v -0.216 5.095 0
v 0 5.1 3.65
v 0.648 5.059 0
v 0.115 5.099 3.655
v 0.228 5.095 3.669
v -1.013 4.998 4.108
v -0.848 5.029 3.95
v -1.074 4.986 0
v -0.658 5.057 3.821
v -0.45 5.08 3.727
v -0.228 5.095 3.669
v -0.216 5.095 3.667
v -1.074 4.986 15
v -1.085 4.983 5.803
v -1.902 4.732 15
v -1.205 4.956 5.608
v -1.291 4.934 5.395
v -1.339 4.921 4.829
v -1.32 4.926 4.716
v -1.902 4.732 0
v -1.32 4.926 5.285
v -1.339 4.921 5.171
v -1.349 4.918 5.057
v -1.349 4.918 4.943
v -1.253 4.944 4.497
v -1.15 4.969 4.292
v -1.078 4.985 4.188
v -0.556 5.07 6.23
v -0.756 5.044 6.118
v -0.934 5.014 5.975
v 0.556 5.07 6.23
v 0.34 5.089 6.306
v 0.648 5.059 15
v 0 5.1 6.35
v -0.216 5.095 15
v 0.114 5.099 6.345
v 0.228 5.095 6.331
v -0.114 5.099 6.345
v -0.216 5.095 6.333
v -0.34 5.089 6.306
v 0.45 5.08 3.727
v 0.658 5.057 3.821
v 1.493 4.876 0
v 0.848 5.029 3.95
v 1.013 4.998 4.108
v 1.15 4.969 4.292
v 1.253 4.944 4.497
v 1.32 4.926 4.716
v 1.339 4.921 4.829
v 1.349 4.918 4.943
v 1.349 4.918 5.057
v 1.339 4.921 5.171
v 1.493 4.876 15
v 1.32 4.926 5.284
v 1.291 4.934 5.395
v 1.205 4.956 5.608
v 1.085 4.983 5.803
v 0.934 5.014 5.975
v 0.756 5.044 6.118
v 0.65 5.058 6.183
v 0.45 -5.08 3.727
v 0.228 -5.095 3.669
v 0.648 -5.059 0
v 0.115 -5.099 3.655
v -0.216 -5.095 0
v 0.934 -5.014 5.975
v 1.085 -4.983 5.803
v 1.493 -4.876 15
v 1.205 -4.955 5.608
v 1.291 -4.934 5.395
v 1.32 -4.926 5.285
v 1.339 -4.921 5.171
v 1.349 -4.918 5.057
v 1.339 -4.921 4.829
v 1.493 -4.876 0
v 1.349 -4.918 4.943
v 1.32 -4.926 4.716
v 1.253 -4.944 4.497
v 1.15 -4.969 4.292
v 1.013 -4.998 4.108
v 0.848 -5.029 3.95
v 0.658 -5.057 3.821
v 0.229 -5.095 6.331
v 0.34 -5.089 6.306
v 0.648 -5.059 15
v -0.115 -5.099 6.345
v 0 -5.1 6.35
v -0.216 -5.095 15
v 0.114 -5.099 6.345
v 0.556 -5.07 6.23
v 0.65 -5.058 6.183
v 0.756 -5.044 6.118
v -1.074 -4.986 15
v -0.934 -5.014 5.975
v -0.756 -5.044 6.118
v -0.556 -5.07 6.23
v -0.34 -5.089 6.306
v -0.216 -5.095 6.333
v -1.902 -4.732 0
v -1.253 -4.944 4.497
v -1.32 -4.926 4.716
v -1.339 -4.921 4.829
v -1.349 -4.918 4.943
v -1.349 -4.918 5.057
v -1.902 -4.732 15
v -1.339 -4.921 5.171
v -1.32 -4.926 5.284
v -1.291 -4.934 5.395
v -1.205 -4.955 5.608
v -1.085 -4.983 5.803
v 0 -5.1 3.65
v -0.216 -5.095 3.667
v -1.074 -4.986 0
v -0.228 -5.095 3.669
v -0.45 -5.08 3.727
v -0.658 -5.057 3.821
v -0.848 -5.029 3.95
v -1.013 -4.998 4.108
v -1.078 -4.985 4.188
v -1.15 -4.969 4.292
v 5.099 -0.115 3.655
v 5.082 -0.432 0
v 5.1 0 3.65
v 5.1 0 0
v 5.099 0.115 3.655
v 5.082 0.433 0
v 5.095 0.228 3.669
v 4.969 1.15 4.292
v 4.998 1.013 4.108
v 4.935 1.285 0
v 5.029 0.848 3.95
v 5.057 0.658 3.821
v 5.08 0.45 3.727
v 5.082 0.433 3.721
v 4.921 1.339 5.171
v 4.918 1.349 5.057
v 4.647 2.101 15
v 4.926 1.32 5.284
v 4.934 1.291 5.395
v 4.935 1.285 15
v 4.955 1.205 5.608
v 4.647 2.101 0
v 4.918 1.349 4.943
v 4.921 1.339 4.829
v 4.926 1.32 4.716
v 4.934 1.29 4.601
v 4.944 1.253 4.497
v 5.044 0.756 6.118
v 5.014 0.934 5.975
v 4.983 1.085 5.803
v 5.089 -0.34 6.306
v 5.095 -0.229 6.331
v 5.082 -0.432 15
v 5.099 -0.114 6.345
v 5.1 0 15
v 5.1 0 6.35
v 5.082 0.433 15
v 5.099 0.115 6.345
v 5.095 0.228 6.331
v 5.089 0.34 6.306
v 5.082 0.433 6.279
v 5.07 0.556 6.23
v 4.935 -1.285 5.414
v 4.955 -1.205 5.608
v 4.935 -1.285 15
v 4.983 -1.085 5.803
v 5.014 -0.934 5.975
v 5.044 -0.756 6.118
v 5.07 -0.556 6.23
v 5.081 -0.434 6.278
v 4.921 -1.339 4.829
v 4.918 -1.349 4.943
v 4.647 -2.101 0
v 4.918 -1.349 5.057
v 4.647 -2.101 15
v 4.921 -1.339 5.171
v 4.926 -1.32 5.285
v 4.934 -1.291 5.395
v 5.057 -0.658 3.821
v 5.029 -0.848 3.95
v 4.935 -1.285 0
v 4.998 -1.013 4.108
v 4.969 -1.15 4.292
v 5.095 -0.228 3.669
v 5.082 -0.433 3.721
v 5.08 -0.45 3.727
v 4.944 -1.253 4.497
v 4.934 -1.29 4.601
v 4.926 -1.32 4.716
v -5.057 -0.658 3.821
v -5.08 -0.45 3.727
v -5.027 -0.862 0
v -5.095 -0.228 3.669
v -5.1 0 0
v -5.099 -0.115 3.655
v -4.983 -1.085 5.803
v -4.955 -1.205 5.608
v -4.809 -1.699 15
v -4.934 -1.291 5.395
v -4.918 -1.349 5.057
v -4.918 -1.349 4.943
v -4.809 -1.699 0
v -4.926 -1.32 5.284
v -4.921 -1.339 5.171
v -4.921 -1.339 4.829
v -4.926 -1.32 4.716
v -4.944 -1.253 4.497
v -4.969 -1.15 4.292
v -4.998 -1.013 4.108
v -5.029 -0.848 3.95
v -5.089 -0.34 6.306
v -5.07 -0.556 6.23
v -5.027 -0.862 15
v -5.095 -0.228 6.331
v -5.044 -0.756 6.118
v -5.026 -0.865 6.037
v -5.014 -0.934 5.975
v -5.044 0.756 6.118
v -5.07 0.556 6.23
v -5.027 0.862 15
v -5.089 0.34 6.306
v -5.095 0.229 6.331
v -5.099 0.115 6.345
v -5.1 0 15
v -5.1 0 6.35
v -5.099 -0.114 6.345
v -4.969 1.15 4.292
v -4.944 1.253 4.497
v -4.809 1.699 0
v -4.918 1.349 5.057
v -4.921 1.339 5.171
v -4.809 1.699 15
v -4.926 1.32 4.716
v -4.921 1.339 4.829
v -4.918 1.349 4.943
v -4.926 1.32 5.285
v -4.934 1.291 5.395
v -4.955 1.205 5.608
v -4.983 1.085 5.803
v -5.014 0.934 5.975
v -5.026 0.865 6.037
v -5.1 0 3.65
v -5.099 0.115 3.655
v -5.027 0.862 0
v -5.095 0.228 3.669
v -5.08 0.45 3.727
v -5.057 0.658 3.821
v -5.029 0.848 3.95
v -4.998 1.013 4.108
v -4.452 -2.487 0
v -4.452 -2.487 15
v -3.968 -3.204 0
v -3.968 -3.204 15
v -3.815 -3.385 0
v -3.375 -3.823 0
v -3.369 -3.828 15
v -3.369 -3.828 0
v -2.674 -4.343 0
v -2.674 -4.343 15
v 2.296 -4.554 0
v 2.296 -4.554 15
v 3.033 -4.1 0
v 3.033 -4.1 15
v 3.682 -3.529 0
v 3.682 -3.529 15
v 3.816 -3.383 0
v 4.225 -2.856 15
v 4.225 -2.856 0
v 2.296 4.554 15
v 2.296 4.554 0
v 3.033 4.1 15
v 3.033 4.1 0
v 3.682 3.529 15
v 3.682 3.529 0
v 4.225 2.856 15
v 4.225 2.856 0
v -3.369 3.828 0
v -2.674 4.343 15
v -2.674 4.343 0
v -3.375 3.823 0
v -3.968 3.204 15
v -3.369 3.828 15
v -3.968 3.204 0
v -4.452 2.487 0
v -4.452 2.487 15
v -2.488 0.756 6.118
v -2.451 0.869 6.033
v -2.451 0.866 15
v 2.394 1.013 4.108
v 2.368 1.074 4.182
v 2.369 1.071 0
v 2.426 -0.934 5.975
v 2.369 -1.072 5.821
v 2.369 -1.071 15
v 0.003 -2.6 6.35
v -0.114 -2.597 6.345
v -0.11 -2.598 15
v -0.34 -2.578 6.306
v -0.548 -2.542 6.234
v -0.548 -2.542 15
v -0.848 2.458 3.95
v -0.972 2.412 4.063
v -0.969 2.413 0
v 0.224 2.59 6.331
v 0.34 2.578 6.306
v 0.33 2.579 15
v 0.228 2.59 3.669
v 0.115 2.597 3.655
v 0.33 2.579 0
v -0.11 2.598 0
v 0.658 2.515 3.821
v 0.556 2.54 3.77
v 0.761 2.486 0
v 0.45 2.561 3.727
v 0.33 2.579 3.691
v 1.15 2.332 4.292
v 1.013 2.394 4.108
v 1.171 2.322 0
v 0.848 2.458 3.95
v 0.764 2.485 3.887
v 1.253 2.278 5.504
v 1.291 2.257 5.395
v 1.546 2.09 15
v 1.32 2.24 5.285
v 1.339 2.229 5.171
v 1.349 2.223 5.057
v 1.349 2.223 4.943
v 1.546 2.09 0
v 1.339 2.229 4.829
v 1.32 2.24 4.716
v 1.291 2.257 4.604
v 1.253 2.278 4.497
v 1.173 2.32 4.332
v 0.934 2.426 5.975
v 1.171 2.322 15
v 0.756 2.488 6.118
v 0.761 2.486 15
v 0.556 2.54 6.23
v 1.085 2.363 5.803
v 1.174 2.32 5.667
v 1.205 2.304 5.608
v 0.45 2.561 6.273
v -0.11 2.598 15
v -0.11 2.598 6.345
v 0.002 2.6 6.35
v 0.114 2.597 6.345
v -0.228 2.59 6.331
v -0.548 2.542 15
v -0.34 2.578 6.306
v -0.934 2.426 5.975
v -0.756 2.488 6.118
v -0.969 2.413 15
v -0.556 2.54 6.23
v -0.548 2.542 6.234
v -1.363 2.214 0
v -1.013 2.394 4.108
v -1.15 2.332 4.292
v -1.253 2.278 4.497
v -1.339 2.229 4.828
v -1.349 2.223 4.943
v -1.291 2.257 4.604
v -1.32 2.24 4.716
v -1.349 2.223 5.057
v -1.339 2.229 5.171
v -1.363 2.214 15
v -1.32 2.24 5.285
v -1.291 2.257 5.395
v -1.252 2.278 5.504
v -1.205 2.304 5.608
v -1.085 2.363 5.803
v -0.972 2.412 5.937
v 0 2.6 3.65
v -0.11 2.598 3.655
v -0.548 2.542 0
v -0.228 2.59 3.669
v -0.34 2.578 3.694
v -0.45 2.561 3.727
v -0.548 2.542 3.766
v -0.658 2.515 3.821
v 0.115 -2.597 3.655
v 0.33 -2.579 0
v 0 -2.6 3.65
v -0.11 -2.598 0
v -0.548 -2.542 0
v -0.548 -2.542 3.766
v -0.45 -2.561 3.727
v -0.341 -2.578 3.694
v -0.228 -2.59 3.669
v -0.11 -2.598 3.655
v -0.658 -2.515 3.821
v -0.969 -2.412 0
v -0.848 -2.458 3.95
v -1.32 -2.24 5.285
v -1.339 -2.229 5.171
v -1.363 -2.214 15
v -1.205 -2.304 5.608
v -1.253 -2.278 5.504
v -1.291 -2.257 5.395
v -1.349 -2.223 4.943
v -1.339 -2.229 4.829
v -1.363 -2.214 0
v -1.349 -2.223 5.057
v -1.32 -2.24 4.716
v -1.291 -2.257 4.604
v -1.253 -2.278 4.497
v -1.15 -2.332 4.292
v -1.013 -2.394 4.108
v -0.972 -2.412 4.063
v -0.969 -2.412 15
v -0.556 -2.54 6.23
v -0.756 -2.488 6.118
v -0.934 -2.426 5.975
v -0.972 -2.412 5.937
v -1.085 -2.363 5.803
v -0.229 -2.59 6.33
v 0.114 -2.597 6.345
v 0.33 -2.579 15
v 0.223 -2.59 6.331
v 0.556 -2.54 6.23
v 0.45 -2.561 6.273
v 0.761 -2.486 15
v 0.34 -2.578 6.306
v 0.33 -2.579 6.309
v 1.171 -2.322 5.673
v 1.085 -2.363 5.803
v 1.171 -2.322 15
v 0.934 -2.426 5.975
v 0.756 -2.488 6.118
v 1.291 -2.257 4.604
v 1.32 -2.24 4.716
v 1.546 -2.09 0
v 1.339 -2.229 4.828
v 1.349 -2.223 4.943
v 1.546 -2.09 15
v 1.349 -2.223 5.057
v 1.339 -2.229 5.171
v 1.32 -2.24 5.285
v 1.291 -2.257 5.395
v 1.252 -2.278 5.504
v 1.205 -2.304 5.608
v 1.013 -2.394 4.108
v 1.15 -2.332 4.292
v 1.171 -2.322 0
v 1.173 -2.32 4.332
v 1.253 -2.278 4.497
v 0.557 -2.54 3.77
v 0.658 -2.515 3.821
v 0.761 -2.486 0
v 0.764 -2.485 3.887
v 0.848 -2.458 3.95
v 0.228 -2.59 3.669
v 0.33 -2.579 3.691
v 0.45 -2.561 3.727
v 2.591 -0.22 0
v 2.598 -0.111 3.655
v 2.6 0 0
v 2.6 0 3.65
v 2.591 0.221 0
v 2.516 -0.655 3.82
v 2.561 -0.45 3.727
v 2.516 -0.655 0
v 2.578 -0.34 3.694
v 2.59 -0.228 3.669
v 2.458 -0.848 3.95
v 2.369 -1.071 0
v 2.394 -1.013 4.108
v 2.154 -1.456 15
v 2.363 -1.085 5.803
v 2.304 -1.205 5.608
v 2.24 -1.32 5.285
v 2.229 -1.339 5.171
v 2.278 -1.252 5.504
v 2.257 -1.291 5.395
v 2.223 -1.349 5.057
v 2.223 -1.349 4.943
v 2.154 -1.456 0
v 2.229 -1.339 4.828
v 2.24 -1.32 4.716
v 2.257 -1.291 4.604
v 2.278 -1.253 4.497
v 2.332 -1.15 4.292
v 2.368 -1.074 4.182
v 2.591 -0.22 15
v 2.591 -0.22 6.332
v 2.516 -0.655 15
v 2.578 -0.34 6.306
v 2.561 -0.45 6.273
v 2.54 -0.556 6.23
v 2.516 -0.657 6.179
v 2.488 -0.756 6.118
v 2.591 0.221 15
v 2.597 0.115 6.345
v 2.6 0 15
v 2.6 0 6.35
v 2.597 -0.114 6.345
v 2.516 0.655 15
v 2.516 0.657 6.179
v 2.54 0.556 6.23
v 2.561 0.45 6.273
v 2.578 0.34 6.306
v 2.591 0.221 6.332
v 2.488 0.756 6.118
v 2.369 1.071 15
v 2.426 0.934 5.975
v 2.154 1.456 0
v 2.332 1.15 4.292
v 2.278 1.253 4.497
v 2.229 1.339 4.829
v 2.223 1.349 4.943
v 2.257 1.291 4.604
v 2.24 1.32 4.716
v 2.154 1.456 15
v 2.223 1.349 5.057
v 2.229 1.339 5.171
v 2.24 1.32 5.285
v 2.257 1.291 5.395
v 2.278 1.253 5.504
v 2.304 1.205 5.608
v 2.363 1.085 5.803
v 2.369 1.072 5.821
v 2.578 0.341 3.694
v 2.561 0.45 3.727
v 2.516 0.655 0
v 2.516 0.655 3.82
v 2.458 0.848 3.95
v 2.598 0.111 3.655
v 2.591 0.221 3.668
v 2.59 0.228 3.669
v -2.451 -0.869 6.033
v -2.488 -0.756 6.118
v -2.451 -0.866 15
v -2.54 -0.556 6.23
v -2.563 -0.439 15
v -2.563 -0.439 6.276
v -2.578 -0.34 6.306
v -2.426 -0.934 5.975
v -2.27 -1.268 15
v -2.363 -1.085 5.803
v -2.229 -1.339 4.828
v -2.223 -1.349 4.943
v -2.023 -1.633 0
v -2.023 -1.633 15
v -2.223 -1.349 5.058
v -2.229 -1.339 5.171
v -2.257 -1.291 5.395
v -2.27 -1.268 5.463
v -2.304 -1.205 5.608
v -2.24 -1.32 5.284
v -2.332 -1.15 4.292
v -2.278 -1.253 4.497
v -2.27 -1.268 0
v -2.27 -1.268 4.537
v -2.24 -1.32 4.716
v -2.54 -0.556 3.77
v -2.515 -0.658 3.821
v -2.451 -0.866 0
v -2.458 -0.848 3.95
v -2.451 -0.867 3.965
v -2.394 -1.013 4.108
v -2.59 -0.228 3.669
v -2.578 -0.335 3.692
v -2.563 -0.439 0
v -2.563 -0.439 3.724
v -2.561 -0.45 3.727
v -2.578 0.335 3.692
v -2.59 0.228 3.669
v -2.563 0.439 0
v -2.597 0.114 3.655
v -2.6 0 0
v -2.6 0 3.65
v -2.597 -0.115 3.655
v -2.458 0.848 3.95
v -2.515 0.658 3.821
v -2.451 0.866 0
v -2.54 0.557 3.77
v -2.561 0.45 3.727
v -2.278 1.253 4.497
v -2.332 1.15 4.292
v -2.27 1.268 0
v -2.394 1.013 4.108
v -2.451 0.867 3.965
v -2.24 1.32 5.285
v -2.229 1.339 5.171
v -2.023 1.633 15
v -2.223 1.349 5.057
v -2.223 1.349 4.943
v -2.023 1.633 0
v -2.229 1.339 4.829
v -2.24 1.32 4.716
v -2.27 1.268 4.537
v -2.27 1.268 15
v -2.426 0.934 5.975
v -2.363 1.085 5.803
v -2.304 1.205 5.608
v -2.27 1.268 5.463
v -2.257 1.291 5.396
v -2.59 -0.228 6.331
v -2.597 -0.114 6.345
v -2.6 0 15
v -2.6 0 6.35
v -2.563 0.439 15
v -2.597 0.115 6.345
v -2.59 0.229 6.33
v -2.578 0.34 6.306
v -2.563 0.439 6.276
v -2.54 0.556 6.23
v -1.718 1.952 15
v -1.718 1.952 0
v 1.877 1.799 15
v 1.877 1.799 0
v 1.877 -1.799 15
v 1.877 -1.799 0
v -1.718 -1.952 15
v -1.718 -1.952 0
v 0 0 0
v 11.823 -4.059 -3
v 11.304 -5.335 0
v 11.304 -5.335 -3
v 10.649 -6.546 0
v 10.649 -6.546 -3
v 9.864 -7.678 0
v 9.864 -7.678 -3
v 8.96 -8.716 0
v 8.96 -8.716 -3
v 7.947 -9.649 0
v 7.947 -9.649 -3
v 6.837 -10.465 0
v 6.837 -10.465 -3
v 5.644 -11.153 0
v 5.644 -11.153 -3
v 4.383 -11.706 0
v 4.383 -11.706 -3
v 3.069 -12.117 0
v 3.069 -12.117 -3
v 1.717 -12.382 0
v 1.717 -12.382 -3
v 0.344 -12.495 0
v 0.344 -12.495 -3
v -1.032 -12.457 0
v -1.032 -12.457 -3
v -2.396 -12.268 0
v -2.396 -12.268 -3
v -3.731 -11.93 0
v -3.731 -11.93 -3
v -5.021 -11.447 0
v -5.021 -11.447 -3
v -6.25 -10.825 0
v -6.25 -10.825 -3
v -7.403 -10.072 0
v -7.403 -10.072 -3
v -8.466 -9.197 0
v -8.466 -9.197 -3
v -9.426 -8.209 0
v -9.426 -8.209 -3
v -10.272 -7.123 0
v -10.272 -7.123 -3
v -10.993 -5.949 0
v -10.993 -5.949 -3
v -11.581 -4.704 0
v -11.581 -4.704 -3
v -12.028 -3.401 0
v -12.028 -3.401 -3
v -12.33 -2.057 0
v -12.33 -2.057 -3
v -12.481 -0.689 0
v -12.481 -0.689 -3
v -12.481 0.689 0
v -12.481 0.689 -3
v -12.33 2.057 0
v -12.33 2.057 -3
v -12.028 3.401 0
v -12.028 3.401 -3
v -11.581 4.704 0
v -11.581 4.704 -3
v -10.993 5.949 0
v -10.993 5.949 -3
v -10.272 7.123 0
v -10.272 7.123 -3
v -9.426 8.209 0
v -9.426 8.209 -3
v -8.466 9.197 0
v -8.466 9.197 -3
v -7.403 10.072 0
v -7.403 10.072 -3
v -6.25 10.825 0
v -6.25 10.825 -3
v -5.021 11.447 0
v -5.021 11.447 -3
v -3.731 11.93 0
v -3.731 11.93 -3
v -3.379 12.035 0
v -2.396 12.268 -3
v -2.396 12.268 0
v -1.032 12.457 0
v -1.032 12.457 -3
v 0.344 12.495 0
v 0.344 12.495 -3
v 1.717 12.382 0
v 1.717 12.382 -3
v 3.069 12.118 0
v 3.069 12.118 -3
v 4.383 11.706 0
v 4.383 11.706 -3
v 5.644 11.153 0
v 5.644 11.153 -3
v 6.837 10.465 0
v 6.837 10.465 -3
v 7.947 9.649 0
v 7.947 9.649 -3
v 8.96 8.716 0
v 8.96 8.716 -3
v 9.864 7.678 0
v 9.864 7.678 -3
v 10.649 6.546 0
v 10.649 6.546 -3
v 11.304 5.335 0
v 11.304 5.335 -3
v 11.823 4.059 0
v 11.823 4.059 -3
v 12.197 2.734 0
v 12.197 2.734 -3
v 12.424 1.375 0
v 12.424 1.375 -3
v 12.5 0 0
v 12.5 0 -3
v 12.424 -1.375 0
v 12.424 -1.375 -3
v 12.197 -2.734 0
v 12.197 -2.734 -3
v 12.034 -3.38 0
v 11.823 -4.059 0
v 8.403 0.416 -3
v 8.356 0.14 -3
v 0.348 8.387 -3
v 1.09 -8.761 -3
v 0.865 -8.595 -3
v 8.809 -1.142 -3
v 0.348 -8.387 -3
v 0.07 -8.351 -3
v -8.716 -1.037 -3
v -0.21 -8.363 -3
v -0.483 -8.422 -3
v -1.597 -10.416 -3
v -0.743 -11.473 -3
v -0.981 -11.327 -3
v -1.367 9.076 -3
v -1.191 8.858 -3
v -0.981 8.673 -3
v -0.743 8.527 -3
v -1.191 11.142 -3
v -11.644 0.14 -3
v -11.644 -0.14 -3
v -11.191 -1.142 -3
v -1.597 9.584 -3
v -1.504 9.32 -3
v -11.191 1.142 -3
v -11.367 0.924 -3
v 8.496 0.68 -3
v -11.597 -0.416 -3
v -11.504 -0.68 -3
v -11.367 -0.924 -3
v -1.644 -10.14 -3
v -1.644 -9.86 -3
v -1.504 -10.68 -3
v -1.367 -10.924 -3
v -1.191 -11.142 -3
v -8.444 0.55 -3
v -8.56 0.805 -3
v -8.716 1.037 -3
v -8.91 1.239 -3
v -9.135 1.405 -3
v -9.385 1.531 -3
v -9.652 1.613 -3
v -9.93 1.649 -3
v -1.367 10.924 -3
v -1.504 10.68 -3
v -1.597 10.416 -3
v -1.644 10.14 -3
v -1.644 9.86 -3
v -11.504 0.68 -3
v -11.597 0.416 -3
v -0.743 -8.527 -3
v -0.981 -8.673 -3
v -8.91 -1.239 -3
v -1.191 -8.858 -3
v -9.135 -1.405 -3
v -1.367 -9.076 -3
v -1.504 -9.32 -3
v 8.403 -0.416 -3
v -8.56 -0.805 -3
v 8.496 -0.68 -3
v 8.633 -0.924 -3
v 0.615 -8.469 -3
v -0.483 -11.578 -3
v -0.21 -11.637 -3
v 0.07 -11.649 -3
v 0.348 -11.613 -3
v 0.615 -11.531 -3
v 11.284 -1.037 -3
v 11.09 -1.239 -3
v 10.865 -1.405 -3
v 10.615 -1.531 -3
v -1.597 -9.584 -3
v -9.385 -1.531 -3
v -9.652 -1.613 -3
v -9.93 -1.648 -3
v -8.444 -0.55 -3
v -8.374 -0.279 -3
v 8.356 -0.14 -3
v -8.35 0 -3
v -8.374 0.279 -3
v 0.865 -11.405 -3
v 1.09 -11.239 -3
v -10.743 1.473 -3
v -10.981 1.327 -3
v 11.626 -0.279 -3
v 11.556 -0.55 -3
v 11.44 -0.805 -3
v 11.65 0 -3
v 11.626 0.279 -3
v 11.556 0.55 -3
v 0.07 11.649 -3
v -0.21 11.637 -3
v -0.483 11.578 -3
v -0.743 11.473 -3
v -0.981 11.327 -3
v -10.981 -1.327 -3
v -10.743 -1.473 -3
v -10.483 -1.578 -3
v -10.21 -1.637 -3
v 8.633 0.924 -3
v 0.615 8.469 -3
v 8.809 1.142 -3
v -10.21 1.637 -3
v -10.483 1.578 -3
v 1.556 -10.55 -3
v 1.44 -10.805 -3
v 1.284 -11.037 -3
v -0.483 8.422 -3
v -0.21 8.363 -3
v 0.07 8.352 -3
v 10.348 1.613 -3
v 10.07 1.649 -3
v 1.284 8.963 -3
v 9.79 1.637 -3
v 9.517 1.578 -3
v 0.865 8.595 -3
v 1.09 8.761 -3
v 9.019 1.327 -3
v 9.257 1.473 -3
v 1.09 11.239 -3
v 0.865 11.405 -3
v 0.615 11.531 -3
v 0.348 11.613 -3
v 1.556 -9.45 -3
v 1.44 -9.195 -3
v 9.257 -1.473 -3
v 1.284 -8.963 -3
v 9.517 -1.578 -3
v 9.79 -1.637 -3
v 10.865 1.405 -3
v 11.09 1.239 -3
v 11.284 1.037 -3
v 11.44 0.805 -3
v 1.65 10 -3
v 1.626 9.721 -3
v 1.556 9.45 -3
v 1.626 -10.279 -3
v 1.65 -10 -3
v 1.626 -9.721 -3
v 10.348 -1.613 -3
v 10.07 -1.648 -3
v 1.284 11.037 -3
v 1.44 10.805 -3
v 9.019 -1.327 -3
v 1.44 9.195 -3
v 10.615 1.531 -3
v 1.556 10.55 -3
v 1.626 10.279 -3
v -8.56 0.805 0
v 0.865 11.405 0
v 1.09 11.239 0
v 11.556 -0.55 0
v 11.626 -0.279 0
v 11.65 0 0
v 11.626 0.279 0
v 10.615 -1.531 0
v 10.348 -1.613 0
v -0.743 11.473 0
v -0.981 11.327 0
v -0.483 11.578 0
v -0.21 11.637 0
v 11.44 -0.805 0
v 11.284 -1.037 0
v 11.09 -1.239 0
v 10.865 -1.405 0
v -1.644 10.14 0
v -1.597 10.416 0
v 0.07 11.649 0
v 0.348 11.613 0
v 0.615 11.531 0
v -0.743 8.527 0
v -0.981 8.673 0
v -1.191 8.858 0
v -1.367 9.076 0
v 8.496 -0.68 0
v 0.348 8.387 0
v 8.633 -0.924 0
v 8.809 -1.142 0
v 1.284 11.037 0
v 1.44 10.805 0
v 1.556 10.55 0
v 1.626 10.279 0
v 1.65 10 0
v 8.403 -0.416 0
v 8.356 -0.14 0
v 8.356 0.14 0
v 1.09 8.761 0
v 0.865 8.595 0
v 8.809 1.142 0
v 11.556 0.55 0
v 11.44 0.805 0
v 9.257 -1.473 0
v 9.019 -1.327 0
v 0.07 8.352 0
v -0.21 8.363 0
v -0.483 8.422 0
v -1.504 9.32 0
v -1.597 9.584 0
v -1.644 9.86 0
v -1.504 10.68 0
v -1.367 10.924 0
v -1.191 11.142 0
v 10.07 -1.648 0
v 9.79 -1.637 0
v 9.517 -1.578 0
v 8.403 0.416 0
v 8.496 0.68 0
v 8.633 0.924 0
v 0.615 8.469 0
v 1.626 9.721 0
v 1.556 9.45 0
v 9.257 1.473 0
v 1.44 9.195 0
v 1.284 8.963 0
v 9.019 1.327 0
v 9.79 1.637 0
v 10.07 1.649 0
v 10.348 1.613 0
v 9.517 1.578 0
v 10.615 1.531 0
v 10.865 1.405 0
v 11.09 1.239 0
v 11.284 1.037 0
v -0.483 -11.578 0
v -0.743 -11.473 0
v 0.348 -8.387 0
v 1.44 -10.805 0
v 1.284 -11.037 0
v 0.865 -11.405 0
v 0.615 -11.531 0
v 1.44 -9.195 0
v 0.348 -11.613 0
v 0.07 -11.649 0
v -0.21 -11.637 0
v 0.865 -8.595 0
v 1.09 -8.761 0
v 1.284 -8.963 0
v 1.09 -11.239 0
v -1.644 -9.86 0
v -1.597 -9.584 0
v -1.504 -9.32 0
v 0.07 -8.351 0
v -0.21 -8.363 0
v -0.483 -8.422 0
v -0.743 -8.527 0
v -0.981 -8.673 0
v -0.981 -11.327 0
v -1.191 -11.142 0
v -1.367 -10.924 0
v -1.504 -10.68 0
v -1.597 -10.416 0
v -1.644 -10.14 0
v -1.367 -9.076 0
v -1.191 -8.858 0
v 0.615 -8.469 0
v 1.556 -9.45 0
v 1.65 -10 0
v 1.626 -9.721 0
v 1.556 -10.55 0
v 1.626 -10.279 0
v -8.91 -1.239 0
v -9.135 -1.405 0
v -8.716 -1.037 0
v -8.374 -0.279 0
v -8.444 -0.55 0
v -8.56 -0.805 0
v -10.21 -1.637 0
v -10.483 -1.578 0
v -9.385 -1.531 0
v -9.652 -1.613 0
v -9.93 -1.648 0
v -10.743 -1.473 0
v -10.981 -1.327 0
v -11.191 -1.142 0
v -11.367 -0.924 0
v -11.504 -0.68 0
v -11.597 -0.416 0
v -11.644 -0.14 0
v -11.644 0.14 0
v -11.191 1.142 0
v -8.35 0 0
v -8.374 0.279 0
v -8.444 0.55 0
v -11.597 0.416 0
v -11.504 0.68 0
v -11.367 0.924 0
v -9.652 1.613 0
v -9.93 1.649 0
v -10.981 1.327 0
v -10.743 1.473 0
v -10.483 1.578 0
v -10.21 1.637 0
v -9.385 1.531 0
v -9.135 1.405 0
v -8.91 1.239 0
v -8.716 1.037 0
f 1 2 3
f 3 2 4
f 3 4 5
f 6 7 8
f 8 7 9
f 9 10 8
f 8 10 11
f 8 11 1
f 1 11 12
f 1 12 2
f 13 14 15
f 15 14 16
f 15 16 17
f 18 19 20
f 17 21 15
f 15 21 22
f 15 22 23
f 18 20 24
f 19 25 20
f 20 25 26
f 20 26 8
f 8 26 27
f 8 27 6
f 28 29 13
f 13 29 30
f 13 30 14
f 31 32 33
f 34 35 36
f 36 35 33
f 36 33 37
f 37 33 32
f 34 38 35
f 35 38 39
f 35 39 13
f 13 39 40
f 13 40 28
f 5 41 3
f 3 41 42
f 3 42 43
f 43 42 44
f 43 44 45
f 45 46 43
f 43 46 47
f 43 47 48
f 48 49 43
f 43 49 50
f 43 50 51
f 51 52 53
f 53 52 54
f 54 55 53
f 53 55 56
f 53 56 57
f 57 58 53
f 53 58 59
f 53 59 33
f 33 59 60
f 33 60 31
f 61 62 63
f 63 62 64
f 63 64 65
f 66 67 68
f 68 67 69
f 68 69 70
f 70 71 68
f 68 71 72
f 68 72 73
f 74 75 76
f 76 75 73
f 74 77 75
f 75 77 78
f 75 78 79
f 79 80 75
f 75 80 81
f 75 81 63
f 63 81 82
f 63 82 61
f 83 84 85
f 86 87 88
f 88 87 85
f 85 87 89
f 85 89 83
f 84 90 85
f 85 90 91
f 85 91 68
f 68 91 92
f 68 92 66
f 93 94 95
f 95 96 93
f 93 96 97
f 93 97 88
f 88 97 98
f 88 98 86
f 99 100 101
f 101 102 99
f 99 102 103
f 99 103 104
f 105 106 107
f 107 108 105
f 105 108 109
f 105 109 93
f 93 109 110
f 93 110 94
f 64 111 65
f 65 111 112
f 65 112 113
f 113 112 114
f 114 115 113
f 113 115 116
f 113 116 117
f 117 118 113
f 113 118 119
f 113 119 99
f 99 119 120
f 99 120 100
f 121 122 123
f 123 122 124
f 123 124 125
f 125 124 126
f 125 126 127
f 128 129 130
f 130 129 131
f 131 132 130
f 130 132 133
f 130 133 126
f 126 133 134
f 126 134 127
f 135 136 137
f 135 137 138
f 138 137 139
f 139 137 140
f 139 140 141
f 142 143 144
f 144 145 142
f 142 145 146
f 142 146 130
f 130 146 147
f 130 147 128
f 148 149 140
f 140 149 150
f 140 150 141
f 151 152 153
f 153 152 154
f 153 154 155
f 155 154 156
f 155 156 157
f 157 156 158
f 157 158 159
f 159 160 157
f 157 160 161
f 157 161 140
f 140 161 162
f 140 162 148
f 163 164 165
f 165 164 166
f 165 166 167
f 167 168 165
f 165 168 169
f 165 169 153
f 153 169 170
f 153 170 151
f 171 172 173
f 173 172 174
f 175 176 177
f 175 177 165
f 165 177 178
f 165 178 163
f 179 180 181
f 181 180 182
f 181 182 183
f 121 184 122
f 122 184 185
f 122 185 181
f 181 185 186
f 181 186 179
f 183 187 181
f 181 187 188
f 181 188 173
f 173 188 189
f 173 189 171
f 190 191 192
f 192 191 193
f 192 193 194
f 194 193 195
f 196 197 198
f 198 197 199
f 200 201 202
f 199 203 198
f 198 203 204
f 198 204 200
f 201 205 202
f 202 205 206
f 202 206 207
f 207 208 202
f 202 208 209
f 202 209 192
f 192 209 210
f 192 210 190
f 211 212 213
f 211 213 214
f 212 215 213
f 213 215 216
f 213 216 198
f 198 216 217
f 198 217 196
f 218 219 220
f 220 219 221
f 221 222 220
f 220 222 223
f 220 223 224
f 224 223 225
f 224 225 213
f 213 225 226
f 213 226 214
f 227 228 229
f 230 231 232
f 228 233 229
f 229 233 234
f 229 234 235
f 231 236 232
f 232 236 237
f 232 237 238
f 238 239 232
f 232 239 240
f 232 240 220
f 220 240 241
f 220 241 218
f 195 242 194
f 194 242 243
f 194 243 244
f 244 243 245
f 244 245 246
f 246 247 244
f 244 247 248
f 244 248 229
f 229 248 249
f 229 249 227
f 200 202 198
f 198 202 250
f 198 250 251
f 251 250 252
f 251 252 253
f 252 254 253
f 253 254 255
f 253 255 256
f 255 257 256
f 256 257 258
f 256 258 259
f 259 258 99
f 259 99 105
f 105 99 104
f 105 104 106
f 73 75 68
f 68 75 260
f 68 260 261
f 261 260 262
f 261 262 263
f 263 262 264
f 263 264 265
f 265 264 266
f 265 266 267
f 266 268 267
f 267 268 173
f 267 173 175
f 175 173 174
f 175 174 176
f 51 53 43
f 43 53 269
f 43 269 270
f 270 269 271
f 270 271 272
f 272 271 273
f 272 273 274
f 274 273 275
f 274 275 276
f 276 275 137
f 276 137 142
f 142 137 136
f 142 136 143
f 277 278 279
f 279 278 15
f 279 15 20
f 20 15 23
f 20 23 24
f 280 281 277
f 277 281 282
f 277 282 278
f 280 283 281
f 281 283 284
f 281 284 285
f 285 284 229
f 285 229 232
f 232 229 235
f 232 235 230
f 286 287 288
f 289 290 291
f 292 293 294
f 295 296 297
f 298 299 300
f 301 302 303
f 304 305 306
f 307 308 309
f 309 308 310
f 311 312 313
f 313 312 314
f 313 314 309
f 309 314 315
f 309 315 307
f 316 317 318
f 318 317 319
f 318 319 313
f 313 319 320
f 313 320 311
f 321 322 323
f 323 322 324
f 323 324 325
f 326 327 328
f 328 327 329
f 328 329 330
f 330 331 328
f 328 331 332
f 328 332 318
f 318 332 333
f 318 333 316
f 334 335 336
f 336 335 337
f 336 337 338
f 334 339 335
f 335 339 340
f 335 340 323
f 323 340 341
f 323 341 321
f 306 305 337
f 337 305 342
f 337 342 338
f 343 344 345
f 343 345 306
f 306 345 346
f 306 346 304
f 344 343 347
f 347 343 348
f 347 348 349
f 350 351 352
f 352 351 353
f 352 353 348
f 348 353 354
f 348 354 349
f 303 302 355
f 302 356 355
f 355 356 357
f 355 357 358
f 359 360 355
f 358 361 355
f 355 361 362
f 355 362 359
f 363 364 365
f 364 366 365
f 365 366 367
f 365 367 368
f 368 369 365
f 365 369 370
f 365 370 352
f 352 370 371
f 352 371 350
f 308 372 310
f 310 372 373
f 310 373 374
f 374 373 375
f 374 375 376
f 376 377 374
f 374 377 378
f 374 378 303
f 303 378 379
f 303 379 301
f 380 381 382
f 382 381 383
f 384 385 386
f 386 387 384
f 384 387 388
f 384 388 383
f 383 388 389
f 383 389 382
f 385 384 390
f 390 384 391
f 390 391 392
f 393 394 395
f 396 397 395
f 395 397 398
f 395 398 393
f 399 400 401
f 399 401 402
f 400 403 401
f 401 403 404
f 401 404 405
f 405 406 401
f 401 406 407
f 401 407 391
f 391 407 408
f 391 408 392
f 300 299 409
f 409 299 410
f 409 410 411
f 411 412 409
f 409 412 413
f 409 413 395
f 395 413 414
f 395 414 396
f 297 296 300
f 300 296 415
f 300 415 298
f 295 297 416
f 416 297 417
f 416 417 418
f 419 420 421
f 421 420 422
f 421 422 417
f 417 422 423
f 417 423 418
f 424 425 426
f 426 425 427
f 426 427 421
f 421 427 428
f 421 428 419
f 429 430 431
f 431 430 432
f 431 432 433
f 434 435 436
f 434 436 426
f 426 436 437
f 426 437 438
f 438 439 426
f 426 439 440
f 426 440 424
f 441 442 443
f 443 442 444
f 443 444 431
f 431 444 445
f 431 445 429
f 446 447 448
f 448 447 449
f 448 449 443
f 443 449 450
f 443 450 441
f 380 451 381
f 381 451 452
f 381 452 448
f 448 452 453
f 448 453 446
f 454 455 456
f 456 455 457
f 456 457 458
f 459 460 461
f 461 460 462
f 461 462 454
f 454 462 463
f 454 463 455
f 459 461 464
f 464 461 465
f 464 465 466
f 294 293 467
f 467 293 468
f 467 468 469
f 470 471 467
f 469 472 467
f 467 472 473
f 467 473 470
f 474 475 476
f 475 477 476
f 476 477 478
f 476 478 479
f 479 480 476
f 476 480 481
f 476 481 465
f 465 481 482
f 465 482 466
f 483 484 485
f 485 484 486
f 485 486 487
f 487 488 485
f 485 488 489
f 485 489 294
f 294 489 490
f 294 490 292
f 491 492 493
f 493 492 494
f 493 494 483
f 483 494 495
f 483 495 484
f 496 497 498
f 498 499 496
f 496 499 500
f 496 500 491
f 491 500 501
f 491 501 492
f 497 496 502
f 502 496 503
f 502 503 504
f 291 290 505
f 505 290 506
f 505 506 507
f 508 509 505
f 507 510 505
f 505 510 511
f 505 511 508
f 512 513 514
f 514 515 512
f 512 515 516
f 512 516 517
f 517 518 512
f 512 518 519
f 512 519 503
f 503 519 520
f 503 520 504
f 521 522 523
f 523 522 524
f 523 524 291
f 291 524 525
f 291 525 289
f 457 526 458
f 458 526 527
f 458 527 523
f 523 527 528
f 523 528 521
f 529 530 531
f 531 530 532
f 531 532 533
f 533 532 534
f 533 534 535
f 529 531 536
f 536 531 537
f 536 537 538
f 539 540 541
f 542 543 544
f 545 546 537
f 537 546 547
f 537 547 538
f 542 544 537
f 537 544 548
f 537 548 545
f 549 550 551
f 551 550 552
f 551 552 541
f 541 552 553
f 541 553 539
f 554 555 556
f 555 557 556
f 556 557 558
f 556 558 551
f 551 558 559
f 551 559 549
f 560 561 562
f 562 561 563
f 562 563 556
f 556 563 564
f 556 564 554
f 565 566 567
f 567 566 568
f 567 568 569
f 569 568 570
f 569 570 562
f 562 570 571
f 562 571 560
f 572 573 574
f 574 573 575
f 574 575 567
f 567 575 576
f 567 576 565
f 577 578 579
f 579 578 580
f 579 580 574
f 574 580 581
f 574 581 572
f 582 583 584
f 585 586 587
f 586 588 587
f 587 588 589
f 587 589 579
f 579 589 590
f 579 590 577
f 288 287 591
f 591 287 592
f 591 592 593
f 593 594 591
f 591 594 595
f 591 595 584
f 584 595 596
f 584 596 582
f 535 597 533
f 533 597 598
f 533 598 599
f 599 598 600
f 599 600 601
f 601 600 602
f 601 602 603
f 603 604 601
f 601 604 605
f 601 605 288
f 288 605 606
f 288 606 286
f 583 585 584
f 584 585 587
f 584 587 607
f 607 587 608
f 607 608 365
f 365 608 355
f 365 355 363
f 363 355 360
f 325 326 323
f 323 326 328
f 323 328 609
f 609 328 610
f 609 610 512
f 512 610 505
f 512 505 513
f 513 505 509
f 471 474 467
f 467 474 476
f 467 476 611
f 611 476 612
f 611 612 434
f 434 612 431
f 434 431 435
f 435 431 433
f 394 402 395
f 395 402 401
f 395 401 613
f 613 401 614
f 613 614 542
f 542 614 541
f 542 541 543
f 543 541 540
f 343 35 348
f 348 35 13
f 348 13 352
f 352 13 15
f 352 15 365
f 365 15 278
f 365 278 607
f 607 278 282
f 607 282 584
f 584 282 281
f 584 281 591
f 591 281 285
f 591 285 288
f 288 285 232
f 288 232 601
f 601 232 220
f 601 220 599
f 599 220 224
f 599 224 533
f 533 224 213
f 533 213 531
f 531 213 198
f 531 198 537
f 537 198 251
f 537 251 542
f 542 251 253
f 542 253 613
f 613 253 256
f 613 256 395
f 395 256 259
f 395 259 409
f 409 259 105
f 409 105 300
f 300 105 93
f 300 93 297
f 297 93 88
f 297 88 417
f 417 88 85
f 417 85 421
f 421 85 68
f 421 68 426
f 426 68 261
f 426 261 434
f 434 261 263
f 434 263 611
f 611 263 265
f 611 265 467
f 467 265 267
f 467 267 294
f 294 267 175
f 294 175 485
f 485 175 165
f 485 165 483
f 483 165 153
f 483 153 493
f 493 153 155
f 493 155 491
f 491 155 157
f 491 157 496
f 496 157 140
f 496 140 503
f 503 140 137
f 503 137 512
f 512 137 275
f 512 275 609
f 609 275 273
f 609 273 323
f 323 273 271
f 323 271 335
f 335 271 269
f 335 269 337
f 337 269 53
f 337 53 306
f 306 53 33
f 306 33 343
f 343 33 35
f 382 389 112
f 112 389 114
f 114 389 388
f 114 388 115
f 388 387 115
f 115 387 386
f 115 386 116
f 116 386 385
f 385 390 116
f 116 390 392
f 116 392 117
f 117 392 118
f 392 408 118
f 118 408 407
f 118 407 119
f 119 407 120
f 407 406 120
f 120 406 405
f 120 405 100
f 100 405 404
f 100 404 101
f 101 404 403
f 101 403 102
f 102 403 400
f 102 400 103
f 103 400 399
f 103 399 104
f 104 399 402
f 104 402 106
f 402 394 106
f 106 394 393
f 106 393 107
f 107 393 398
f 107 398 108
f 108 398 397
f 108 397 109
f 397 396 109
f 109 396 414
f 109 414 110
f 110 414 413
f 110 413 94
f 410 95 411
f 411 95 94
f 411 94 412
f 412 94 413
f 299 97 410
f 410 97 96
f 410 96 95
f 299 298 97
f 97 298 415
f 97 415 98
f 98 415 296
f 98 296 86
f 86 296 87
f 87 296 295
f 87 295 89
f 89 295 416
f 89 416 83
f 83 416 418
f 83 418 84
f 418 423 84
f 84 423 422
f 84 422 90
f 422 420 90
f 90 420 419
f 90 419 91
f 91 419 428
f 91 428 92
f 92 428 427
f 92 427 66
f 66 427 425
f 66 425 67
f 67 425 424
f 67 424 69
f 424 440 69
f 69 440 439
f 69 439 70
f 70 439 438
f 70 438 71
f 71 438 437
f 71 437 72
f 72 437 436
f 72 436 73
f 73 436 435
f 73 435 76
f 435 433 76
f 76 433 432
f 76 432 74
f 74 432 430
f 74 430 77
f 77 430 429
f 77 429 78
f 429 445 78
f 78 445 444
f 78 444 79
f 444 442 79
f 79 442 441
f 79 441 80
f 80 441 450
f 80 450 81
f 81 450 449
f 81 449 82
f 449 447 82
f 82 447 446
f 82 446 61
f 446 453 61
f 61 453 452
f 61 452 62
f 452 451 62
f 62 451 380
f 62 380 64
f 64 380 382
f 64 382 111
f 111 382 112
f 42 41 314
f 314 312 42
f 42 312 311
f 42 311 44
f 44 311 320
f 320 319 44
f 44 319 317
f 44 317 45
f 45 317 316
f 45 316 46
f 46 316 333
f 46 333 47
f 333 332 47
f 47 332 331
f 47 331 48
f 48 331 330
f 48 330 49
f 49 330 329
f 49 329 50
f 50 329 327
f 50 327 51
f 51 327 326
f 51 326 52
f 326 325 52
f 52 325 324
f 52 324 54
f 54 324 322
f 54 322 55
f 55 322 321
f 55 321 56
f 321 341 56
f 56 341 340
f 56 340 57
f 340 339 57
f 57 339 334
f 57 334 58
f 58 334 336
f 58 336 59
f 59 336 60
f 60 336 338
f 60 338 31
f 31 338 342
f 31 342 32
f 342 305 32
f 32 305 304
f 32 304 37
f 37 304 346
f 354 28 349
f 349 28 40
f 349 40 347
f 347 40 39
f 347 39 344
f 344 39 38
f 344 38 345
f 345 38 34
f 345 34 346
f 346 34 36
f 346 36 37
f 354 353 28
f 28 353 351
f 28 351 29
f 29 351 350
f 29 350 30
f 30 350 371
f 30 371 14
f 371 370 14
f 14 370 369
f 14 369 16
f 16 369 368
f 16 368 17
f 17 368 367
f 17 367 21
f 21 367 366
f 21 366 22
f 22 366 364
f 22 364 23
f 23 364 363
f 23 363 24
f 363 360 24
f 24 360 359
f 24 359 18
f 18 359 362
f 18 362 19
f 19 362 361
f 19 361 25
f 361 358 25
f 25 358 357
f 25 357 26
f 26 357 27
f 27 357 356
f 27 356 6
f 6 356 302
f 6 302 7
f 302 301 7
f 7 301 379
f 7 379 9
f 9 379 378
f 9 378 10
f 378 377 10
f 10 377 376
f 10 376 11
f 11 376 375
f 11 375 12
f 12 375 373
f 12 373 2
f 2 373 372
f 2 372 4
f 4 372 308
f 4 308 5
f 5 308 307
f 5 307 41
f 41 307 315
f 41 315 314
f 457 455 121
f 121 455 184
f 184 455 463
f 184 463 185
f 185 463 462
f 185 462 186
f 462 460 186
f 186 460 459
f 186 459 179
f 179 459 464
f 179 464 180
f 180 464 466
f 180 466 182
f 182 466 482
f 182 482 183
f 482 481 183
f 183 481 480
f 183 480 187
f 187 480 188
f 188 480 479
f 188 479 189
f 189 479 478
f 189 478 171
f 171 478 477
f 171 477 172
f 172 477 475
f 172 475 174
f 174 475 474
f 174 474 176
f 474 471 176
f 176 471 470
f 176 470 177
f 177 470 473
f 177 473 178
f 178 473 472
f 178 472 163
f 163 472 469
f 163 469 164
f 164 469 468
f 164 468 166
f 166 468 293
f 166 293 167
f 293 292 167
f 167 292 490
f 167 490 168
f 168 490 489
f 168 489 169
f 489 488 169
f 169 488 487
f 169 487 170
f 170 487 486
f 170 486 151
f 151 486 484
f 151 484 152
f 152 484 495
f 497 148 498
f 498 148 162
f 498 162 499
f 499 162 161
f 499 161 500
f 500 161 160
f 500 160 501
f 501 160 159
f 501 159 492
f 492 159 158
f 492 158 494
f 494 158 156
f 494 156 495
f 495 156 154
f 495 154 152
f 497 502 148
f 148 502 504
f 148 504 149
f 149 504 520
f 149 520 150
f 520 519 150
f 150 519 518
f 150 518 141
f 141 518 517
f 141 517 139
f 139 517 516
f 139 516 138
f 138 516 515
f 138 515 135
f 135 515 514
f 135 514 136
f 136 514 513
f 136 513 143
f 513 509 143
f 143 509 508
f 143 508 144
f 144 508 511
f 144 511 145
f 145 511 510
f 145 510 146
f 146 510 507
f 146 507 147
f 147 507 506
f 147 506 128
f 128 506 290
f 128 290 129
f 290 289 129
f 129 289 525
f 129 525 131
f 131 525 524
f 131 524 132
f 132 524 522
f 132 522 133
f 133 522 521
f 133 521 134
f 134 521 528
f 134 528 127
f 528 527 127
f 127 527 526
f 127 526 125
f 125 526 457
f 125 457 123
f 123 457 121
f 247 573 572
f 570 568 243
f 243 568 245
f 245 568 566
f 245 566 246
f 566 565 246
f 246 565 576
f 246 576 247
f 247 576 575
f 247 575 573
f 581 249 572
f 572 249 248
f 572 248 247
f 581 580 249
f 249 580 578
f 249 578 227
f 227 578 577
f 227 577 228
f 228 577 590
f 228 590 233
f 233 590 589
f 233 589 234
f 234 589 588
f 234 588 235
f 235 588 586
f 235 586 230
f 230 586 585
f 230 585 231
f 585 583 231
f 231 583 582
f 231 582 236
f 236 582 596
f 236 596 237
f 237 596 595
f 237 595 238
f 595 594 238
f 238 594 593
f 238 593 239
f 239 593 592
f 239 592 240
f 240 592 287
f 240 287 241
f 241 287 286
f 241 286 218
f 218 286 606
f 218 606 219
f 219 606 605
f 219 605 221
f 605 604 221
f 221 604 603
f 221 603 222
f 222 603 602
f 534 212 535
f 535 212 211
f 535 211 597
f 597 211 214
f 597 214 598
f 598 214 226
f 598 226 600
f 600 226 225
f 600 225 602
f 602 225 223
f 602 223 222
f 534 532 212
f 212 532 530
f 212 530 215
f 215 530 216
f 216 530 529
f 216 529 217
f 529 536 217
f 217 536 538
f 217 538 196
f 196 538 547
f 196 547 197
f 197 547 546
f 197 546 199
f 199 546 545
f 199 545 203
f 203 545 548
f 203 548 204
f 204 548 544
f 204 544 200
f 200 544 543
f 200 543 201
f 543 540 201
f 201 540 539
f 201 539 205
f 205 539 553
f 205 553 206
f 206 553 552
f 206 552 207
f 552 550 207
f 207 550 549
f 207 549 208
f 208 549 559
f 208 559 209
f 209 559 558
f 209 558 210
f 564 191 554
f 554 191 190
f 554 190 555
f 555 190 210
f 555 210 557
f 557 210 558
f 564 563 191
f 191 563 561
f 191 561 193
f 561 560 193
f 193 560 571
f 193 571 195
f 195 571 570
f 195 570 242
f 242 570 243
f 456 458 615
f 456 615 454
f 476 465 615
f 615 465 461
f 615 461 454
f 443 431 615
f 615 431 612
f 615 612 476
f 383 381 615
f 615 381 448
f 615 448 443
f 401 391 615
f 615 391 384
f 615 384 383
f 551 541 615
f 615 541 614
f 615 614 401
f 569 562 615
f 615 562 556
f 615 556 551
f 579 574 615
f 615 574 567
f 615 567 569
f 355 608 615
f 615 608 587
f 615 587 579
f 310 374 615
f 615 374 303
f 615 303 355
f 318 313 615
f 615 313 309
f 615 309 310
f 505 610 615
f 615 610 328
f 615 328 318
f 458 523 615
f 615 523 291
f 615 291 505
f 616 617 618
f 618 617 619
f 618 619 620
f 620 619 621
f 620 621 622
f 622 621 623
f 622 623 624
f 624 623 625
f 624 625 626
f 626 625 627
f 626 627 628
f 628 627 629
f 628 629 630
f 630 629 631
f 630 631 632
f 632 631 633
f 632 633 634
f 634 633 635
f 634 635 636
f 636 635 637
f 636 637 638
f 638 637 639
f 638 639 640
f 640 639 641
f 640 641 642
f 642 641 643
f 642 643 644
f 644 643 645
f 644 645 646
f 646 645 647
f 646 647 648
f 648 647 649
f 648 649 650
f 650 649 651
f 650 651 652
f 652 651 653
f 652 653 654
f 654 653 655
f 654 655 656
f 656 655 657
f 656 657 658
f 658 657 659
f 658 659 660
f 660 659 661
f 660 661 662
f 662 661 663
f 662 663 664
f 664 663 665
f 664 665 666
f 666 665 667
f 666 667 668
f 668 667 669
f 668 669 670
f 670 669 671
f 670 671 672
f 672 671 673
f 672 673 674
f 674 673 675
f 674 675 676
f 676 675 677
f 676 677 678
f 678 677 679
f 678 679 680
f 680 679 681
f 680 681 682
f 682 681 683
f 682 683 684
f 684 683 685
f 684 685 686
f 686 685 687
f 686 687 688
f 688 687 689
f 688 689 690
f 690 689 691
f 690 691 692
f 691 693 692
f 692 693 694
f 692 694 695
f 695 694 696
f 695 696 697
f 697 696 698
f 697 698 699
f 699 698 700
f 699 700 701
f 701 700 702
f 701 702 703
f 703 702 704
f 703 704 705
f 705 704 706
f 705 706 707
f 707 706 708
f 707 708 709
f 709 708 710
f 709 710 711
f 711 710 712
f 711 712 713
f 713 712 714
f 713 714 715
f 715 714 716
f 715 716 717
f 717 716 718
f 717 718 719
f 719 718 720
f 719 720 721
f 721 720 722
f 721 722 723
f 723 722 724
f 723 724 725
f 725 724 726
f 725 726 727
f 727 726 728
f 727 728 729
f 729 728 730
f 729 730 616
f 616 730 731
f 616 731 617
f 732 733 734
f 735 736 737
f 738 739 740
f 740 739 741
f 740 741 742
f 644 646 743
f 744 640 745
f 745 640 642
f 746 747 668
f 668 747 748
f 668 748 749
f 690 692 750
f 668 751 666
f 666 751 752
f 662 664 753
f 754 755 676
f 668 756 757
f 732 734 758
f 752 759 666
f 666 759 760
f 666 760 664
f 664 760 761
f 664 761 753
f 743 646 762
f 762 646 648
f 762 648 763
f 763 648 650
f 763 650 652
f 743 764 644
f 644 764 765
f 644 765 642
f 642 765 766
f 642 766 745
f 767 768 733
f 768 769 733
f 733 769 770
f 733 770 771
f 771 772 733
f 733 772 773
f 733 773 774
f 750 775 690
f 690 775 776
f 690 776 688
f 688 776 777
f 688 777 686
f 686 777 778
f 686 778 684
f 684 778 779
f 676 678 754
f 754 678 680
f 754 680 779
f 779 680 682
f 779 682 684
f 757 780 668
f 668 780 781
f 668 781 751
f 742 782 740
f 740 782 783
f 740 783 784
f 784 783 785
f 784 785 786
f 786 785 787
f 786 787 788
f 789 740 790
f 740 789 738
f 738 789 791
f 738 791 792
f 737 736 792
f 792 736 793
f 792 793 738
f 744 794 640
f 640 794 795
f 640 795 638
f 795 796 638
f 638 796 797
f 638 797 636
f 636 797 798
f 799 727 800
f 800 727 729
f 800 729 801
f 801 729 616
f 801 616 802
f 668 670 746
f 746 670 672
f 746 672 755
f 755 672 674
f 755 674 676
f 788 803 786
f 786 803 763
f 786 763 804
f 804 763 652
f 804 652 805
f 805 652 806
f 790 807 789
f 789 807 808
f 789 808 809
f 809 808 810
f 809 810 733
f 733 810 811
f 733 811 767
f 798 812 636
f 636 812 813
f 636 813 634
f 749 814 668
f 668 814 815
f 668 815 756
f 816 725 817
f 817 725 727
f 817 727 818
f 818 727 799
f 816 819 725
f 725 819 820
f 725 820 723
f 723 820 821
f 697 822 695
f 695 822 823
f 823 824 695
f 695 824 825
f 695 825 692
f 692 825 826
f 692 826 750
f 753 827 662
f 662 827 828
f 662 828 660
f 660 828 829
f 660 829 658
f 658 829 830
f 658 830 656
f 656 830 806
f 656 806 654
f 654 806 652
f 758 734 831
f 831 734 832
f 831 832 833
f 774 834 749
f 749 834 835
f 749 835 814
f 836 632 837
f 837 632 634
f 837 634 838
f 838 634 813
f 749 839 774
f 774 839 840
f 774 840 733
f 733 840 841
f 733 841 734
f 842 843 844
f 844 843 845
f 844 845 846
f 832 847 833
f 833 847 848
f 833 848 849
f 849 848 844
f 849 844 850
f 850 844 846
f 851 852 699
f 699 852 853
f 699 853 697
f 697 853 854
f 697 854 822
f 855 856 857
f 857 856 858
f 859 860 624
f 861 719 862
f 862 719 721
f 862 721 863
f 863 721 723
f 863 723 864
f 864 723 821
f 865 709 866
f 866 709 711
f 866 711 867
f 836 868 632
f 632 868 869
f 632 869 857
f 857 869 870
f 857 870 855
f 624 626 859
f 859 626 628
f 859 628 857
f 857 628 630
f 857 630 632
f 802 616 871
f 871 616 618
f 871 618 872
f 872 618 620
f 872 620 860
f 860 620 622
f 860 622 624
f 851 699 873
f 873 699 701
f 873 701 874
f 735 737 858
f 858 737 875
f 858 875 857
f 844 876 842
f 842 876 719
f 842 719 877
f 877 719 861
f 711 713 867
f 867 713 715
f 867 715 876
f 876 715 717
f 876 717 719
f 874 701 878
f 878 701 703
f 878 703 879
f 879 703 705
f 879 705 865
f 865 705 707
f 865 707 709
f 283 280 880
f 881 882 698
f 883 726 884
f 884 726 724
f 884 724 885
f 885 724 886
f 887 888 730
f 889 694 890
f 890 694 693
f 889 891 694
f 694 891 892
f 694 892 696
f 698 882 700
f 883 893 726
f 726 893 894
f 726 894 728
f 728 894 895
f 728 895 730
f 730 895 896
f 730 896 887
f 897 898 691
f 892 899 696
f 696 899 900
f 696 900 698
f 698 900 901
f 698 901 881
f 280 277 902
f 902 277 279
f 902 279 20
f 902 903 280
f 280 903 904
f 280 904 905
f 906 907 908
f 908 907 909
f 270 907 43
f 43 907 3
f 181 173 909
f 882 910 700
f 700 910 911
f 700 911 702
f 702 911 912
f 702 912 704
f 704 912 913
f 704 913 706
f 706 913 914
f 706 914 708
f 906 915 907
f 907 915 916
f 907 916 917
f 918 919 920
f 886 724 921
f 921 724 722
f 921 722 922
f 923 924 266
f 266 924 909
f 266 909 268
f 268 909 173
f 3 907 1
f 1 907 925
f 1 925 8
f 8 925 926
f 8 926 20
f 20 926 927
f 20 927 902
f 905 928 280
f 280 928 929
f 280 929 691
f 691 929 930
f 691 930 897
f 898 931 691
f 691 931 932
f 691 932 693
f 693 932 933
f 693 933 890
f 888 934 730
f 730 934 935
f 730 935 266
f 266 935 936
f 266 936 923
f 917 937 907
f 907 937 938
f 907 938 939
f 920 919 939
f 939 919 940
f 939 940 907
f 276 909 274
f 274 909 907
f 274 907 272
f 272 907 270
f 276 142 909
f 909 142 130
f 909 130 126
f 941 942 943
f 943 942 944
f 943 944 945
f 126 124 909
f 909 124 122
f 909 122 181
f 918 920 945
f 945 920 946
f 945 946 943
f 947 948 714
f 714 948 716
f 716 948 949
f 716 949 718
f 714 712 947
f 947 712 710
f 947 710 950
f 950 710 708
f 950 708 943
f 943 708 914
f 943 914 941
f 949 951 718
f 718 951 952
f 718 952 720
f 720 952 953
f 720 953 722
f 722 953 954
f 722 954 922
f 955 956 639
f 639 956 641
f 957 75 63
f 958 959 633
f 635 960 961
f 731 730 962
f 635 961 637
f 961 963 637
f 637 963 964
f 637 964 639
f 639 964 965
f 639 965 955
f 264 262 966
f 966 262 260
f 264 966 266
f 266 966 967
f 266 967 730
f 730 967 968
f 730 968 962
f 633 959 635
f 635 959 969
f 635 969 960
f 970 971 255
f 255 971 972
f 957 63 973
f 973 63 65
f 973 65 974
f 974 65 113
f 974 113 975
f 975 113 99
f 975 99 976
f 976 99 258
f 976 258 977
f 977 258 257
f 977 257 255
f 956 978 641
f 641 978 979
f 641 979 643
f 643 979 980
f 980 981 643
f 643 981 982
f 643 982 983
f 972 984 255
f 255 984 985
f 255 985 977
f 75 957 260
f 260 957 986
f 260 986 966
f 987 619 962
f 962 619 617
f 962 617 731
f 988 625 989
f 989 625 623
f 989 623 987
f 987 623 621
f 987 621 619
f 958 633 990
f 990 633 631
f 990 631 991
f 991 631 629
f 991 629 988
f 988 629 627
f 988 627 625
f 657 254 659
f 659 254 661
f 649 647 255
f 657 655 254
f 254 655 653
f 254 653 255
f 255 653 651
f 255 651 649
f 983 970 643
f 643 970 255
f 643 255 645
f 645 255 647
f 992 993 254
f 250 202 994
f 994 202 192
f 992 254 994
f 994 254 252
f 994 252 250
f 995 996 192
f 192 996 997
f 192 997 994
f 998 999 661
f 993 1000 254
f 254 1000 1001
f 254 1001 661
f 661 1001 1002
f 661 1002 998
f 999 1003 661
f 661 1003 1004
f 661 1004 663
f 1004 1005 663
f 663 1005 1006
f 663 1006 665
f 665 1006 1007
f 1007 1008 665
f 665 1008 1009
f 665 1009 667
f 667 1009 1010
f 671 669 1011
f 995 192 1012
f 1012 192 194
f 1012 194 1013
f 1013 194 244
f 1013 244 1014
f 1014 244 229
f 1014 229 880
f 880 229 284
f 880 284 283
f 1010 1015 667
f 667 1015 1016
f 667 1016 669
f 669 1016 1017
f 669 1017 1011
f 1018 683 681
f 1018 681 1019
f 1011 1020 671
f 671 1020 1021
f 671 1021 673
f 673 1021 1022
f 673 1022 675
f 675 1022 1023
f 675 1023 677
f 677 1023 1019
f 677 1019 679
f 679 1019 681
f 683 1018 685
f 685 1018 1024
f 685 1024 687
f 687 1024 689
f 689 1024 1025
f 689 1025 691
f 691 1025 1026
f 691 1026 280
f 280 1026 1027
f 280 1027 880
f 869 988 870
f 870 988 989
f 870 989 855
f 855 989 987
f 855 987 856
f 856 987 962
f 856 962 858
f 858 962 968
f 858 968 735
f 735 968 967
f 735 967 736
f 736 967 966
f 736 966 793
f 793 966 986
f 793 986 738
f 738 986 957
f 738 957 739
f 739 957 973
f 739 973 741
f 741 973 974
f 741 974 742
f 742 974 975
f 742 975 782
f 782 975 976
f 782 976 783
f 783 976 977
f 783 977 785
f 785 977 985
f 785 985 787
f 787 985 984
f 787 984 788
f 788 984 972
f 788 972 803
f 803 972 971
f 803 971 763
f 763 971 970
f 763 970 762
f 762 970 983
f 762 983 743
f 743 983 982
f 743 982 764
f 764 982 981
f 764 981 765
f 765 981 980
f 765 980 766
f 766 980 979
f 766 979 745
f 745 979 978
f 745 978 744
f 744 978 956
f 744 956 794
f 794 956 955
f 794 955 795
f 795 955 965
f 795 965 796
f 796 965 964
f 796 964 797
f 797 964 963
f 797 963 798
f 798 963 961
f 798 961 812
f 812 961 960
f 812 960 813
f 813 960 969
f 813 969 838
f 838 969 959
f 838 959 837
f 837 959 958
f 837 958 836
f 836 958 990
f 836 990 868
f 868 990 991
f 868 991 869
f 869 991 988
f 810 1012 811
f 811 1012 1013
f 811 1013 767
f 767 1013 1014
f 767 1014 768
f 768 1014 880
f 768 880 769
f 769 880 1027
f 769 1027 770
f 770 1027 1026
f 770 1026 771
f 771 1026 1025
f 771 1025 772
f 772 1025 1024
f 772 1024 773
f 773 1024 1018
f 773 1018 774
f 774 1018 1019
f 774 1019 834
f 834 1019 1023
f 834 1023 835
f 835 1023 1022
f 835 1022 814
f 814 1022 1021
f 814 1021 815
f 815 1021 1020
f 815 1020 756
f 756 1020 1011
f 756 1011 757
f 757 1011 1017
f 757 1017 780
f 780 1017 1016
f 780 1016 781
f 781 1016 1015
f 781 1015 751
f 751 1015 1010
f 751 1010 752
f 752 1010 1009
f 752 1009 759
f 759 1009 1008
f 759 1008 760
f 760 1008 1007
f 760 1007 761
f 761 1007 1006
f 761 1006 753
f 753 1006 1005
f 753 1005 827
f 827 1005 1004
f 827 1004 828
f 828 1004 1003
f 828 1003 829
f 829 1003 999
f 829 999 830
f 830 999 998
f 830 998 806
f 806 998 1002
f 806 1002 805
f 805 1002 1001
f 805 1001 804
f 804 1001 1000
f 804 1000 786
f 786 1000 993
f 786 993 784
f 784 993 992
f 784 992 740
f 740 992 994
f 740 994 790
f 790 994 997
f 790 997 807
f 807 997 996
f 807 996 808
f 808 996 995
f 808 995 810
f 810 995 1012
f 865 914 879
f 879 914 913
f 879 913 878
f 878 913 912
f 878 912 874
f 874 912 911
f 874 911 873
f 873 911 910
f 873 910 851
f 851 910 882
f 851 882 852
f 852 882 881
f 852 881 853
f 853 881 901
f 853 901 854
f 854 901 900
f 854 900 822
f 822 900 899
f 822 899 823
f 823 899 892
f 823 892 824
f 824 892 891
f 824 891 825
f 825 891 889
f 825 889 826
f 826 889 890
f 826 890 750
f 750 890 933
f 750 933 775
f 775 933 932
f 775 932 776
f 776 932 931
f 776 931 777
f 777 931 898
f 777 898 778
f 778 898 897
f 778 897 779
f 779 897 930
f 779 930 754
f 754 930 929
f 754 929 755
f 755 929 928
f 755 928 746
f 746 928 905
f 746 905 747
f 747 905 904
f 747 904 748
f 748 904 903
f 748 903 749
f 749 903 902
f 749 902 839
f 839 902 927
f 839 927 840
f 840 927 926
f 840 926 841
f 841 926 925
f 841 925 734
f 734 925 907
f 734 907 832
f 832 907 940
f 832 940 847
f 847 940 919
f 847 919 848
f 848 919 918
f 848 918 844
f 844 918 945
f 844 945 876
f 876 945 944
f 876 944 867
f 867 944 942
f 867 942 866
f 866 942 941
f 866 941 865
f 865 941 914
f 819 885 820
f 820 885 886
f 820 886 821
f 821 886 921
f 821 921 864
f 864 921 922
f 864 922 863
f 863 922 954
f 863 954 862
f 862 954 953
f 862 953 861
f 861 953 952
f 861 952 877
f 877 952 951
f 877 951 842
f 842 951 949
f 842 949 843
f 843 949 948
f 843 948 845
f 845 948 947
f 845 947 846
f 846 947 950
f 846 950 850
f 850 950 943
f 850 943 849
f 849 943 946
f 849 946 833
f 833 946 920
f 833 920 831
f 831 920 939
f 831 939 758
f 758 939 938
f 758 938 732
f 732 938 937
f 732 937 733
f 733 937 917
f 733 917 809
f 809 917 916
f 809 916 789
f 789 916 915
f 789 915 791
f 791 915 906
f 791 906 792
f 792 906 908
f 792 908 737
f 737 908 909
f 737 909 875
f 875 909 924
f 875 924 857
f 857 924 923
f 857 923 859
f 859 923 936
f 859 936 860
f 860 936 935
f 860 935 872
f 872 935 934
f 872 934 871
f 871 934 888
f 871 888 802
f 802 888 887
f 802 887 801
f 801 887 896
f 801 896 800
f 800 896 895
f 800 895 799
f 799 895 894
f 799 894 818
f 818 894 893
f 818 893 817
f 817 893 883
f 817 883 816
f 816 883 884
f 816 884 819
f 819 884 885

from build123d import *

# Parameters (mm, degrees)
SKETCH_1_R               = 5.1
SKETCH_1_R_2             = 2.6
EXTRUDE_1_DEPTH          = 15
CUT_EXTRUDE_1_DEPTH      = 17.643917808
CUT_EXTRUDE_1_DEPTH_BACK = 17.643917808
SKETCH_2_R               = 1.35
CUT_EXTRUDE_2_DEPTH      = 17.643917959
CUT_EXTRUDE_2_DEPTH_BACK = 17.643917959
SKETCH_3_R               = 1.35
SKETCH_4_R               = 12.5
SKETCH_4_R_2             = 1.65
EXTRUDE_2_DEPTH          = 3


with BuildPart() as part:
    # 草图1 → 凸台-拉伸1 (new body)
    with BuildSketch(Plane.XY):
        Circle(SKETCH_1_R)
        Circle(SKETCH_1_R_2, mode=Mode.SUBTRACT)
    extrude(amount=EXTRUDE_1_DEPTH)

    # 草图2 → 切除-拉伸1 (cut, two sides: drawn at the far end of the back side and taken through both)
    with BuildSketch(Plane(origin=(0, 0, 0), x_dir=(1, 0, 0), z_dir=(0, 1, 0)).offset(-CUT_EXTRUDE_1_DEPTH_BACK)):
        with Locations(Location((0, -5, 0), (0, 0, 90))):
            Circle(SKETCH_2_R)
    extrude(amount=CUT_EXTRUDE_1_DEPTH + CUT_EXTRUDE_1_DEPTH_BACK, mode=Mode.SUBTRACT)

    # 草图3 → 切除-拉伸2 (cut, two sides: drawn at the far end of the back side and taken through both)
    with BuildSketch(Plane(origin=(0, 0, 0), x_dir=(0, 0, -1), z_dir=(1, 0, 0)).offset(-CUT_EXTRUDE_2_DEPTH_BACK)):
        with Locations((-5, 0)):
            Circle(SKETCH_3_R)
    extrude(amount=CUT_EXTRUDE_2_DEPTH + CUT_EXTRUDE_2_DEPTH_BACK, mode=Mode.SUBTRACT)

    # 草图4 → 凸台-拉伸2 (add)
    with BuildSketch(Plane.XY):
        Circle(SKETCH_4_R)
        with Locations((0, -10)):
            Circle(SKETCH_4_R_2, mode=Mode.SUBTRACT)
        with Locations((-10, 0)):
            Circle(SKETCH_4_R_2, mode=Mode.SUBTRACT)
        with Locations((0, 10)):
            Circle(SKETCH_4_R_2, mode=Mode.SUBTRACT)
        with Locations((10, 0)):
            Circle(SKETCH_4_R_2, mode=Mode.SUBTRACT)
    extrude(amount=-EXTRUDE_2_DEPTH)


solid = part.part
